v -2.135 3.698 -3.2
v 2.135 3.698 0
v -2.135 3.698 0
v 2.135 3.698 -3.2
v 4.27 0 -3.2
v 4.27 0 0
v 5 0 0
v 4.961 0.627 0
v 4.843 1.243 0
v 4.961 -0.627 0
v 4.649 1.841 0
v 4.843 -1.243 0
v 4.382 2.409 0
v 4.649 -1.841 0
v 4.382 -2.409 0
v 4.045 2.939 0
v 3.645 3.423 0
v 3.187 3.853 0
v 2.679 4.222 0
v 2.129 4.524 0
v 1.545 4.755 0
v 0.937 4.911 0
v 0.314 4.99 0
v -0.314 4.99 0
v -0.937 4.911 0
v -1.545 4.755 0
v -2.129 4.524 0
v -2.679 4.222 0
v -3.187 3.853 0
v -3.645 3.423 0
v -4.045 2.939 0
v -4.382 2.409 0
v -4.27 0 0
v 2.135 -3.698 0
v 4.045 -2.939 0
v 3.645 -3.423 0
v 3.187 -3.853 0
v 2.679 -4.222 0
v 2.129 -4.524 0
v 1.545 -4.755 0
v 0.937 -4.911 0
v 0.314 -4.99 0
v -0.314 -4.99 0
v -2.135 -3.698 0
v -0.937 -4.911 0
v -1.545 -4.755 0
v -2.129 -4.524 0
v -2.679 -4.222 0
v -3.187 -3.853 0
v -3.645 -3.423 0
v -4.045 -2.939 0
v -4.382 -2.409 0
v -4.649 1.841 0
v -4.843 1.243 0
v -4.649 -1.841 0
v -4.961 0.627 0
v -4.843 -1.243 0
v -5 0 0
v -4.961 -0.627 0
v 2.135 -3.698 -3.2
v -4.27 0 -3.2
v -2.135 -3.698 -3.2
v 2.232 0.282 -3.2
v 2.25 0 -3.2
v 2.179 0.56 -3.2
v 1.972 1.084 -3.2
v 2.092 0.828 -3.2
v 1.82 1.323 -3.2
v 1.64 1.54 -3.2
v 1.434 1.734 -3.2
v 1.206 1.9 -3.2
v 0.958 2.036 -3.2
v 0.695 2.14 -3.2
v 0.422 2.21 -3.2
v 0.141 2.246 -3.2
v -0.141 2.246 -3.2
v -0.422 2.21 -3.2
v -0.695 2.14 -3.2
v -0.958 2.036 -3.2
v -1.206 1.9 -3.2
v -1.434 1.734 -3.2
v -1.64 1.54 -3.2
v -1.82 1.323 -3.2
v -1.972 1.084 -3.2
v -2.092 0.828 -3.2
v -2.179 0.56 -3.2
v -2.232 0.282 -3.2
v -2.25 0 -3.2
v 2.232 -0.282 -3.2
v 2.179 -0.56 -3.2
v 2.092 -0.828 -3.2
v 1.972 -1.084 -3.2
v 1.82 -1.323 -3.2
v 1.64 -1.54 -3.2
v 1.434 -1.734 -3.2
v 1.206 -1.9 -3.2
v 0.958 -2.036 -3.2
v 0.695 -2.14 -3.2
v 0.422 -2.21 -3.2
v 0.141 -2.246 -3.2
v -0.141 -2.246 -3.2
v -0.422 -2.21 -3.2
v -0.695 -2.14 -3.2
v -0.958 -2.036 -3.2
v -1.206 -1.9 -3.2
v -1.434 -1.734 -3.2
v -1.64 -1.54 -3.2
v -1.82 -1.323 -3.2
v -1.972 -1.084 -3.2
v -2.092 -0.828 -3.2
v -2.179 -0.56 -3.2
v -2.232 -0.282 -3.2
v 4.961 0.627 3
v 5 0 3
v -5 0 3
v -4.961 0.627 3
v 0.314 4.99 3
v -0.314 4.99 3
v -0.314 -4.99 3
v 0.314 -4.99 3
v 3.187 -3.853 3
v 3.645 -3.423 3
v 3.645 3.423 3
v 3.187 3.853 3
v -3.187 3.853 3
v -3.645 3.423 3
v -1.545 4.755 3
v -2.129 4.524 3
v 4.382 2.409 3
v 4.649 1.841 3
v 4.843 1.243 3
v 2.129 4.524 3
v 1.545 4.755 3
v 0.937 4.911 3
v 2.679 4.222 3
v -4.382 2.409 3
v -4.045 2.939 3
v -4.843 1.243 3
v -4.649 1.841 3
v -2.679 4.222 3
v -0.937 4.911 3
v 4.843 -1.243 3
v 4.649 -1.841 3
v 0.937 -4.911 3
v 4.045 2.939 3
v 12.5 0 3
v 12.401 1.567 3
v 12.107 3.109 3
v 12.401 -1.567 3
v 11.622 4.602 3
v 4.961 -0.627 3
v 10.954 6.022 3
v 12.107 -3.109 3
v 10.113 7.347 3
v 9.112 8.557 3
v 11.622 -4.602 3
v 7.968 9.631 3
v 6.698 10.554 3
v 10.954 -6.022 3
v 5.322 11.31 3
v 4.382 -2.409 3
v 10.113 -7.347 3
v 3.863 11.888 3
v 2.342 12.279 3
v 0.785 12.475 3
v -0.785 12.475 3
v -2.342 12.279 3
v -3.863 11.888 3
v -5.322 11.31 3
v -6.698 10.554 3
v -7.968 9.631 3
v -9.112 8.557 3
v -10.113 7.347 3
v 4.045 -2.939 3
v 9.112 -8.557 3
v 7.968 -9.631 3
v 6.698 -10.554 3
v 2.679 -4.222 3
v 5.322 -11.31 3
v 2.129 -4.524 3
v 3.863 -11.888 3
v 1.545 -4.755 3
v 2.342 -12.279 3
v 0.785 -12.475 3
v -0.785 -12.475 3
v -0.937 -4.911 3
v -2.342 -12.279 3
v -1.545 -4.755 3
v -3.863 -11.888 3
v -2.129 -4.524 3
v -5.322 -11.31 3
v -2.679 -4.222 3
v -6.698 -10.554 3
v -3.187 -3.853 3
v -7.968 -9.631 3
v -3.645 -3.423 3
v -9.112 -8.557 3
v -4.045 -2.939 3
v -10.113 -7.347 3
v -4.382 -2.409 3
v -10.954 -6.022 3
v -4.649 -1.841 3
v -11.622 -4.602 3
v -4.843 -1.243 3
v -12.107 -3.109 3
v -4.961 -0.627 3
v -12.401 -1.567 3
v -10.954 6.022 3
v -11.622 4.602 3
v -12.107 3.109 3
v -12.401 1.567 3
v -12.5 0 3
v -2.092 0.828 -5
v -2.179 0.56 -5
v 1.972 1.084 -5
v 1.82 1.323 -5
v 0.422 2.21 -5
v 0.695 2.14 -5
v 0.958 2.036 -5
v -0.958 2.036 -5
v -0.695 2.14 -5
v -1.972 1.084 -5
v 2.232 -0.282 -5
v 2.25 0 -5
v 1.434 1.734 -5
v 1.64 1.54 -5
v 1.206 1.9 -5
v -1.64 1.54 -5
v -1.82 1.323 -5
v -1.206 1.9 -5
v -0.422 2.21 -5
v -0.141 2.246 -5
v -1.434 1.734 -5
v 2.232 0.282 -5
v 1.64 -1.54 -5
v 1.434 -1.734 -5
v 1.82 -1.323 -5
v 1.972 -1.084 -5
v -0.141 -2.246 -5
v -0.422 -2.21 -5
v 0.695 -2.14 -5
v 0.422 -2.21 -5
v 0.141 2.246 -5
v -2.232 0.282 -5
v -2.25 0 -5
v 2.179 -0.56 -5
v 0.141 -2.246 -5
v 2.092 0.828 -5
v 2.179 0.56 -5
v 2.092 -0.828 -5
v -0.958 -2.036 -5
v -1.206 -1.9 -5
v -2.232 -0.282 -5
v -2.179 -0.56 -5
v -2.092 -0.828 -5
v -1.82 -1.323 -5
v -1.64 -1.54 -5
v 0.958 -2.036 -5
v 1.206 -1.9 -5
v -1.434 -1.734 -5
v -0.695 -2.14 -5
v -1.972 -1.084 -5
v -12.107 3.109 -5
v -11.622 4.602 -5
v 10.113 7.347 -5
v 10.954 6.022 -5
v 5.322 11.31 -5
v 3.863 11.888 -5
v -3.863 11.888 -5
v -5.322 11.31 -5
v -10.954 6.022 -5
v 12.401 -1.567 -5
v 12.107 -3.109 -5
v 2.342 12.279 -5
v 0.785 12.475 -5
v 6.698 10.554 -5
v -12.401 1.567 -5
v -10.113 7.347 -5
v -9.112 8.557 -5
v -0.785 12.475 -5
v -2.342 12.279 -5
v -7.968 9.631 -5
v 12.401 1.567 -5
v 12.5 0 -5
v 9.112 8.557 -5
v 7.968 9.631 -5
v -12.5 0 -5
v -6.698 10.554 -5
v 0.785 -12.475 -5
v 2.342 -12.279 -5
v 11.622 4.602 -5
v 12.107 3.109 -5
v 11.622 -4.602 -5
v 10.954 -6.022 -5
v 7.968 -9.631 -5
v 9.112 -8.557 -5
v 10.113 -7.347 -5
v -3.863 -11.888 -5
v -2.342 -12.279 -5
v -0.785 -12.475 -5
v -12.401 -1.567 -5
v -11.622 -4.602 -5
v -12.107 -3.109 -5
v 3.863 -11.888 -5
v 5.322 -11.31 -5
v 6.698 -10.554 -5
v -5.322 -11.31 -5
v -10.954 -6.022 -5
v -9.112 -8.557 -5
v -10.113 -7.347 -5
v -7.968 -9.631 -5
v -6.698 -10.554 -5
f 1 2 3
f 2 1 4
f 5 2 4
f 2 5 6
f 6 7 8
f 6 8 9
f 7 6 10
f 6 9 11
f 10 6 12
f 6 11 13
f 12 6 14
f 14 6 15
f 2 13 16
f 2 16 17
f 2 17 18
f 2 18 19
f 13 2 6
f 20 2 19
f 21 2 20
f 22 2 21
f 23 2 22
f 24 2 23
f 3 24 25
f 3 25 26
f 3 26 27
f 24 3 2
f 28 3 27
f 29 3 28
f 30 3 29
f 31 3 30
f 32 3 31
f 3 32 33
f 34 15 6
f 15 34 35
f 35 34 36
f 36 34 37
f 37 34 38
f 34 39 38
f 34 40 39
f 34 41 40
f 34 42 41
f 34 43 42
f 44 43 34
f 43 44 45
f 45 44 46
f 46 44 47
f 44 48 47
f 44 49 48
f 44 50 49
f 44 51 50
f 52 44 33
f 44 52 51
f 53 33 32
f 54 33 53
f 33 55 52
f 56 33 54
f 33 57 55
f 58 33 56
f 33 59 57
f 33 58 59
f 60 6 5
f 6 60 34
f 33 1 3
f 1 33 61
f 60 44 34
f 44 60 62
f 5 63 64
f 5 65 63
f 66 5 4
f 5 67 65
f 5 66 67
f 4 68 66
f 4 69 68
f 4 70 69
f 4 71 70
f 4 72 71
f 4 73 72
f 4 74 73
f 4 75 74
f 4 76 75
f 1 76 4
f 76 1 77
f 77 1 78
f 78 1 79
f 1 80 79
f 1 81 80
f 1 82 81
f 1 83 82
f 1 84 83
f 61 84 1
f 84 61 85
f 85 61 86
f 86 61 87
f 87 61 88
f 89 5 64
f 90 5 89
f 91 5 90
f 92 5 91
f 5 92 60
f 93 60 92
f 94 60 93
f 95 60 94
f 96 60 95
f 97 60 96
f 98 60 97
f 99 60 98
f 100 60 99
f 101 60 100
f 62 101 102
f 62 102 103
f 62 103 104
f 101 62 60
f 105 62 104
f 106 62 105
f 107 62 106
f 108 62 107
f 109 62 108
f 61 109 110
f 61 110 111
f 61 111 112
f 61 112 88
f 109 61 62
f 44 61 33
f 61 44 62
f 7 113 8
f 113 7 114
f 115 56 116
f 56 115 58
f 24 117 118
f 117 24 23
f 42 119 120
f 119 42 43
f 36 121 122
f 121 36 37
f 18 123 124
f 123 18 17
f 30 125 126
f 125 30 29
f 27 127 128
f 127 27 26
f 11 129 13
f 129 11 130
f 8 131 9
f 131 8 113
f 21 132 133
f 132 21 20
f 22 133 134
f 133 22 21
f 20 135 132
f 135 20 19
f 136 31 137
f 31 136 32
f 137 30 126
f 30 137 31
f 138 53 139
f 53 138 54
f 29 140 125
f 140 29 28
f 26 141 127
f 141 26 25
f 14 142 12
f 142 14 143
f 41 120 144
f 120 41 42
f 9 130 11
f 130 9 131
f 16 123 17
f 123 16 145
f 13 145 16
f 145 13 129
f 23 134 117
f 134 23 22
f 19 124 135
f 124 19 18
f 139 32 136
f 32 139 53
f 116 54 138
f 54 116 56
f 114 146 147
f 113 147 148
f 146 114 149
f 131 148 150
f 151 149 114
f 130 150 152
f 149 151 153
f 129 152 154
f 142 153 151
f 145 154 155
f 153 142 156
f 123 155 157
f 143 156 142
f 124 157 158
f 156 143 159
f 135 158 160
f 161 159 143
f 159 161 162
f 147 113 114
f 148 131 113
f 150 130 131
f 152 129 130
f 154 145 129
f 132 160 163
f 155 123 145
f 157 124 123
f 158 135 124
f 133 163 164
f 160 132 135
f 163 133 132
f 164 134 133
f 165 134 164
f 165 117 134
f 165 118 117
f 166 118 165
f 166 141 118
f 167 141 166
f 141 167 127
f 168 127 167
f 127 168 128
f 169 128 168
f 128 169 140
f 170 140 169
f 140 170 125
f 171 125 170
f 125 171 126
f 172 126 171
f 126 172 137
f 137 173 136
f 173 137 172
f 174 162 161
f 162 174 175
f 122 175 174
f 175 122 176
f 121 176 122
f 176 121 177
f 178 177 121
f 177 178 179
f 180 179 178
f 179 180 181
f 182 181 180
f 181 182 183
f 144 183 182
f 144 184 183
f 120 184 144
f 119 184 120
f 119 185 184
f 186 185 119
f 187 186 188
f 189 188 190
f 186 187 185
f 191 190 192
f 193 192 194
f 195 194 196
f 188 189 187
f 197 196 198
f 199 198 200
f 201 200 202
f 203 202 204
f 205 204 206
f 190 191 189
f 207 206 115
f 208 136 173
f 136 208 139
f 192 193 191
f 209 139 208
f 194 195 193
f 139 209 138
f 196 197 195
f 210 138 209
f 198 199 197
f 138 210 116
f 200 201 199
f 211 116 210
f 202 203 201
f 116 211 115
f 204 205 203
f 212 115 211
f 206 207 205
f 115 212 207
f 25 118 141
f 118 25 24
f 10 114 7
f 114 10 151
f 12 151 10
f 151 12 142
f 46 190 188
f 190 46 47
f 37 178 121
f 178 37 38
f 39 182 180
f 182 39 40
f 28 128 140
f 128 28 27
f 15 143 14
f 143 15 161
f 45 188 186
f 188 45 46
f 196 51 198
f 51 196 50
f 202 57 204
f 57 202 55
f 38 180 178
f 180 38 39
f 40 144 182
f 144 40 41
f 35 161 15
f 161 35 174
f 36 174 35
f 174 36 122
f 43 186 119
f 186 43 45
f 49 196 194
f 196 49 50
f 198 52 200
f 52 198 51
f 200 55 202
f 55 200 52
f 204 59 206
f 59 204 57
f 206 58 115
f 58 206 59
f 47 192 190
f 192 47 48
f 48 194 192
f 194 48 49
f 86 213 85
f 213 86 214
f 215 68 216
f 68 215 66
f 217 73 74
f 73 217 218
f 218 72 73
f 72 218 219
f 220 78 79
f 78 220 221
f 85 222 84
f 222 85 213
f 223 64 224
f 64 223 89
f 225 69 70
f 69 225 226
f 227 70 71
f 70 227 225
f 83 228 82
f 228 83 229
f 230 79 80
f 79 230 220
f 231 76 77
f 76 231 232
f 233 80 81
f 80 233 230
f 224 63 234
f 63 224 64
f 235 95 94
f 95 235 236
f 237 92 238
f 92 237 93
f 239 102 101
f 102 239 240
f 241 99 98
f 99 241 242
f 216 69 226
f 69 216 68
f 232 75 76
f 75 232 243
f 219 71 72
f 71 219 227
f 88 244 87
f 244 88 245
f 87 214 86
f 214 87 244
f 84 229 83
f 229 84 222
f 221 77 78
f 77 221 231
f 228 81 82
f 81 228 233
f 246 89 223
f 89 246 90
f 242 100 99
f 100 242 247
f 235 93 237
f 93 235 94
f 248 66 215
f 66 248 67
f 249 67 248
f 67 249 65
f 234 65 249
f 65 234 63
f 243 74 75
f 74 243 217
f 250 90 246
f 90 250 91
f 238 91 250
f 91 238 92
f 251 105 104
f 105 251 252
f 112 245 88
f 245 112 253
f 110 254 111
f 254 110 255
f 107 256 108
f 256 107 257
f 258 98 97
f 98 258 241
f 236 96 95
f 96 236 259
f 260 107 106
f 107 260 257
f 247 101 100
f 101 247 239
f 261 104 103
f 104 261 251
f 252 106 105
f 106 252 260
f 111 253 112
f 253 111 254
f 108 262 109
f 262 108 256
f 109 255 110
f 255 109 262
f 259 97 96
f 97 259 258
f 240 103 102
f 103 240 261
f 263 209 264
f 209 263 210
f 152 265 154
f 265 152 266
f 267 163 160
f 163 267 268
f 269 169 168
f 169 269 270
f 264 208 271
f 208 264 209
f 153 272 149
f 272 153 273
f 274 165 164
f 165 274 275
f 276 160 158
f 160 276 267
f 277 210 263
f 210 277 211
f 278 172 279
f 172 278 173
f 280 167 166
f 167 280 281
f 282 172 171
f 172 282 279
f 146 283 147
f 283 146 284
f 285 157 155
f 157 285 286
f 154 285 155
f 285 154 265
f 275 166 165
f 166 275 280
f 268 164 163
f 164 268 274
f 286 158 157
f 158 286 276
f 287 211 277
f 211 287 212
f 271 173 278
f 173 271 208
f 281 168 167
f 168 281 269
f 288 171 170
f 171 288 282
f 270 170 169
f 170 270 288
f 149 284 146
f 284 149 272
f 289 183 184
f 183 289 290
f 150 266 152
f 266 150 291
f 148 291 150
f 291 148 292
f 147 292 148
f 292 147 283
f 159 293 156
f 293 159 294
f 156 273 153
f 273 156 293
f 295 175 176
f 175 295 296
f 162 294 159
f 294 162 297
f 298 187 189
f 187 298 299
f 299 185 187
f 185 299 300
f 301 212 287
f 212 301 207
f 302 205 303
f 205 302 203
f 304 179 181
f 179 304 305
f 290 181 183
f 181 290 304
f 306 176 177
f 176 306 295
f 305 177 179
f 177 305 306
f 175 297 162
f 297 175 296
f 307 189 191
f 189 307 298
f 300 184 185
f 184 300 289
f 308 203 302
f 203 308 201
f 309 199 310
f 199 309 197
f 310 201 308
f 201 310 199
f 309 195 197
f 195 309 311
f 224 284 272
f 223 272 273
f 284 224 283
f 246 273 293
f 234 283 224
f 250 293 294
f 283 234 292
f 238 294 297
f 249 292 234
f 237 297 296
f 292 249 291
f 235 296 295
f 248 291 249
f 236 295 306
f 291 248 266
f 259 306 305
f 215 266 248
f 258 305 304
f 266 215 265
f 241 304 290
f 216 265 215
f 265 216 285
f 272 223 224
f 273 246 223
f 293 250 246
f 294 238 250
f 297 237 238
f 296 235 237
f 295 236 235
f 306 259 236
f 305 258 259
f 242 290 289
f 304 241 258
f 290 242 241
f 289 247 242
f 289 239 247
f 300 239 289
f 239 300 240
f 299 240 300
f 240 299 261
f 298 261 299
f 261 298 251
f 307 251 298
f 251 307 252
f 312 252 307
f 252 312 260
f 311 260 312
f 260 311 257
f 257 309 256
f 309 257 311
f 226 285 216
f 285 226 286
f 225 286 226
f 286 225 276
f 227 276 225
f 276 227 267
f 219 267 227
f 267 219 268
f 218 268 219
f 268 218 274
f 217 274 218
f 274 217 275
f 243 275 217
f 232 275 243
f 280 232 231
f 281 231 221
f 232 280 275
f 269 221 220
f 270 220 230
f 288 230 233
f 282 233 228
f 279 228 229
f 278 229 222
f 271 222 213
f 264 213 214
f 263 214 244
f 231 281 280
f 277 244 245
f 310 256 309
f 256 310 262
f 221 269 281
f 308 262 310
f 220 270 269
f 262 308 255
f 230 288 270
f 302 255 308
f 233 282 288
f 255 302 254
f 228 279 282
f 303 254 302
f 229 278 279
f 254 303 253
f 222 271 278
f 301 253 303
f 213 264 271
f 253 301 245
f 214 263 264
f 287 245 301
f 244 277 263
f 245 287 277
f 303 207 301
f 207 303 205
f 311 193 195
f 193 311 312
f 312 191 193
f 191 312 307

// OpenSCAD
$fn = 50;

difference() {
	union() {
		translate(v = [0, 0, -5.0]) {
			cylinder(h = 8.0, r = 12.5);
		}
	}
	union() {
		translate(v = [0, 0, 0]) {
			rotate(a = [0, 0, 0]) {
				difference() {
					union() {
						translate(v = [0, 0, -3.2]) {
							linear_extrude(height = 3.2) {
								polygon(points = [[4.2698, 0.0], [2.1349000000000005, 3.697755269078796], [-2.134899999999999, 3.6977552690787965], [-4.2698, 5.228996902999369e-16], [-2.134900000000002, -3.6977552690787956], [2.1348999999999974, -3.697755269078798]]);
							}
						}
					}
					union();
				}
			}
		}
		#cylinder(h = 3, r = 5.0);
		#translate(v = [0, 0, -100.0]) {
			cylinder(h = 200, r = 2.25);
		}
	}
}
